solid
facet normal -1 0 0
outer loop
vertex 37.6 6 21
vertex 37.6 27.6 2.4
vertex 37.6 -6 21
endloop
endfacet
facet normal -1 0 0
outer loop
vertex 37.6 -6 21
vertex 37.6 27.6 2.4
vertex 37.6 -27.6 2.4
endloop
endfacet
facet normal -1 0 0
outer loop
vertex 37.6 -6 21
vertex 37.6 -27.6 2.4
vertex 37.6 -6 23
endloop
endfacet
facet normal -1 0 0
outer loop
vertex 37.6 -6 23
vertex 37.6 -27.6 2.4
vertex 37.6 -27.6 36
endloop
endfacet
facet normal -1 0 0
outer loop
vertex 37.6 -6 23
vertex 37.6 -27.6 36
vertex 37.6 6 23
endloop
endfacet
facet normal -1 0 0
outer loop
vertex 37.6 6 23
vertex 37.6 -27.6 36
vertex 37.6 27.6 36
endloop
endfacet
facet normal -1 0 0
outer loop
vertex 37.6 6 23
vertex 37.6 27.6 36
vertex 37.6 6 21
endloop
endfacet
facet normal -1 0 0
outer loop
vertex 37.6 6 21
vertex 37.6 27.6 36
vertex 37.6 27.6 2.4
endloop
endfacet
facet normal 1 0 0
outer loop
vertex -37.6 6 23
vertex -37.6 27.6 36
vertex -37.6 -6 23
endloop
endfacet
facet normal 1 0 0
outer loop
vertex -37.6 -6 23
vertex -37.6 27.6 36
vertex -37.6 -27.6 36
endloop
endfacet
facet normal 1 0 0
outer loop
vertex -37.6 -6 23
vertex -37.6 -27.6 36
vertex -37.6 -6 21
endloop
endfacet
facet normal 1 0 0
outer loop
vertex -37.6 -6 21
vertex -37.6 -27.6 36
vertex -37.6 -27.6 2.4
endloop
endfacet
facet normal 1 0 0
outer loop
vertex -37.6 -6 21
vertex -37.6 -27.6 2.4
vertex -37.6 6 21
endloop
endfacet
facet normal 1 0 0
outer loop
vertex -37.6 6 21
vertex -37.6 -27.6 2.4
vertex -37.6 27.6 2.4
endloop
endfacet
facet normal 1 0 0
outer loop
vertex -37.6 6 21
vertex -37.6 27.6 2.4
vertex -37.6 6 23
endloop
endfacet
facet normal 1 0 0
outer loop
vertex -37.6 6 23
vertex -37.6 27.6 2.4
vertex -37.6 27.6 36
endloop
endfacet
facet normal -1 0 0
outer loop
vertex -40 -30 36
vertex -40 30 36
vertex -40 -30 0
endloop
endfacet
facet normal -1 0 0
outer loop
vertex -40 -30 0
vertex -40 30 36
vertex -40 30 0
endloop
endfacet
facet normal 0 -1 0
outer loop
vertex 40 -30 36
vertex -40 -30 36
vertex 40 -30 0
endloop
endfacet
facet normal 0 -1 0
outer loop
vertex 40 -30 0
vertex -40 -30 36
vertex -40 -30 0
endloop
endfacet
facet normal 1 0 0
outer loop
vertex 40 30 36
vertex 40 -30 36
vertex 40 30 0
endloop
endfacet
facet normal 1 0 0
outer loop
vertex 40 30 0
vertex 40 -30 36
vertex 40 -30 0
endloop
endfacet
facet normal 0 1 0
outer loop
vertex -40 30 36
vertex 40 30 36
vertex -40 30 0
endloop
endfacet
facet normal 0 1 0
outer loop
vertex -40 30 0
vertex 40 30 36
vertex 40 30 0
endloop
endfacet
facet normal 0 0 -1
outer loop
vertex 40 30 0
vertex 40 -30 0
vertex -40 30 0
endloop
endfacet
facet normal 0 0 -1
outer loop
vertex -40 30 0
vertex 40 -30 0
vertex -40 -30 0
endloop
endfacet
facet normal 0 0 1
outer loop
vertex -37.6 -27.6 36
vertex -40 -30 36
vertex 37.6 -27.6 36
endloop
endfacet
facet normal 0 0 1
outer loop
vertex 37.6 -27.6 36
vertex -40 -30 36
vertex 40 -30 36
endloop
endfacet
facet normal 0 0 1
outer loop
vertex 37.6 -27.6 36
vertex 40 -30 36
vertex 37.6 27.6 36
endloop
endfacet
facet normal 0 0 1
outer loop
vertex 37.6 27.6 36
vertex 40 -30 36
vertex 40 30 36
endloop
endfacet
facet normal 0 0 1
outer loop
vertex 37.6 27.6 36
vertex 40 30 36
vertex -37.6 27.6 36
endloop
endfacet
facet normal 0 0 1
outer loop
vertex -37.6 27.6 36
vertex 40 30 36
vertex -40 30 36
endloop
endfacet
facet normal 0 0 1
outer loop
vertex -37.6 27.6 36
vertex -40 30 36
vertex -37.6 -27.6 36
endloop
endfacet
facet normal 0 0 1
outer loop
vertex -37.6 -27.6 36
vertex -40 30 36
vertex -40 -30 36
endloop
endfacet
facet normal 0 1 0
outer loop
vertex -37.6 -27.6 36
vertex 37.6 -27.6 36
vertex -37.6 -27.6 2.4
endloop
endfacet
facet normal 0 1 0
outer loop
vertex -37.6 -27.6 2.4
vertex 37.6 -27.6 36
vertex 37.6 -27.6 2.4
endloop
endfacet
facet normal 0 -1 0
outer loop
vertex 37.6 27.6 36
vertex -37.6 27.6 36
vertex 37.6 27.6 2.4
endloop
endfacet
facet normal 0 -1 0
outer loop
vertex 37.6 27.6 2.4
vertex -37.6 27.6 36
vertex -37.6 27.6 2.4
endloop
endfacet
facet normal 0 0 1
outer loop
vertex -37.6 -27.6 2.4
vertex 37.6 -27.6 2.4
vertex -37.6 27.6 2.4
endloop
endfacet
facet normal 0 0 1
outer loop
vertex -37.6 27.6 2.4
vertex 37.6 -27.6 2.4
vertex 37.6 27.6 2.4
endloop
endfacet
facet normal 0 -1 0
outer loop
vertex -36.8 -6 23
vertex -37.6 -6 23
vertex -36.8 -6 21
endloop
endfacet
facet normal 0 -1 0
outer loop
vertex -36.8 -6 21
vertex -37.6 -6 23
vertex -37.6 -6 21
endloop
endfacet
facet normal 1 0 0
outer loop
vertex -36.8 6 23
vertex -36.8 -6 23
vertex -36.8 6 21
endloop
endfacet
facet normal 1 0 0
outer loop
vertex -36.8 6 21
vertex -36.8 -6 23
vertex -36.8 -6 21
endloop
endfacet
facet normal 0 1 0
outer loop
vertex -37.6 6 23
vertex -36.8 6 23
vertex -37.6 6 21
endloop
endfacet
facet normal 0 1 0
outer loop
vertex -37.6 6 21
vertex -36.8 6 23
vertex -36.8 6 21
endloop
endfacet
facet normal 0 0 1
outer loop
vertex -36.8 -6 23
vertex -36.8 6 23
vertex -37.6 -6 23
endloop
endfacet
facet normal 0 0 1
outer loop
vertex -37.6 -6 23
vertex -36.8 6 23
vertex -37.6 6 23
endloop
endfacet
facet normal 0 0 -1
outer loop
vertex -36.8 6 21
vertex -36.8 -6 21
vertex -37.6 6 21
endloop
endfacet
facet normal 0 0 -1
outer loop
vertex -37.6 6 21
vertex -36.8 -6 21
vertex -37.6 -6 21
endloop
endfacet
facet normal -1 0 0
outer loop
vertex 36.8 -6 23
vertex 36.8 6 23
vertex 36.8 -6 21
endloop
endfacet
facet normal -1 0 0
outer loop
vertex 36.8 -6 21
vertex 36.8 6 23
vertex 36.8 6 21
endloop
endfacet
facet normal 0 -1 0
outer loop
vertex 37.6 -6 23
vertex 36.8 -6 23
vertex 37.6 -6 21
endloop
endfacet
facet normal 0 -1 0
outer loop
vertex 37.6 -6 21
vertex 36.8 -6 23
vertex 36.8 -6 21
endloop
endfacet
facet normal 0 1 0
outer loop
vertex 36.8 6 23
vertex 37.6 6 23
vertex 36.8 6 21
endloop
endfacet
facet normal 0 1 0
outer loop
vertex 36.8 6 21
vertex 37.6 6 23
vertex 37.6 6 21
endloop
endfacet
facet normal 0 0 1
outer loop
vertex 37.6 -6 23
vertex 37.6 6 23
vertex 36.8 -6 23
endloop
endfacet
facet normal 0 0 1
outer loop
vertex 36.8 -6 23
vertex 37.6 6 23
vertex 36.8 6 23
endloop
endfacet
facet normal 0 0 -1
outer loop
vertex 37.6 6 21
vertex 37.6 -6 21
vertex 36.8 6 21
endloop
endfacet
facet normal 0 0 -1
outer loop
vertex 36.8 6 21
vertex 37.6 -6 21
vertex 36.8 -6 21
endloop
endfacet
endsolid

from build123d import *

# Parameters (mm, degrees)
SKETCH2_W         = 80
SKETCH2_H         = 60
FLOOR_2P4_DEPTH   = 2.4
WALLS_2P4_START   = 2.4
SKETCH3_W         = 80
SKETCH3_H         = 60
SKETCH3_W_2       = 75.2
SKETCH3_H_2       = 55.2
WALLS_2P4_DEPTH   = 33.6
CATCH_LEFT_START  = 21
SKETCH4_W         = 0.8
SKETCH4_H         = 12
CATCH_LEFT_DEPTH  = 2
CATCH_RIGHT_START = 21
SKETCH5_W         = 0.8
SKETCH5_H         = 12
CATCH_RIGHT_DEPTH = 2


with BuildPart() as part:
    # Sketch2 → Floor_2p4 (new body)
    with BuildSketch(Plane.XY):
        Rectangle(SKETCH2_W, SKETCH2_H)
    extrude(amount=FLOOR_2P4_DEPTH)

    # Sketch3 → Walls_2p4 (add)
    with BuildSketch(Plane.XY.offset(WALLS_2P4_START)):
        Rectangle(SKETCH3_W, SKETCH3_H)
        Rectangle(SKETCH3_W_2, SKETCH3_H_2, mode=Mode.SUBTRACT)
    extrude(amount=WALLS_2P4_DEPTH)

    # Sketch4 → Catch_left (add)
    with BuildSketch(Plane.XY.offset(CATCH_LEFT_START)):
        with Locations((-37.2, 0)):
            Rectangle(SKETCH4_W, SKETCH4_H)
    extrude(amount=CATCH_LEFT_DEPTH)

    # Sketch5 → Catch_right (add)
    with BuildSketch(Plane.XY.offset(CATCH_RIGHT_START)):
        with Locations((37.2, 0)):
            Rectangle(SKETCH5_W, SKETCH5_H)
    extrude(amount=CATCH_RIGHT_DEPTH)


solid = part.part
